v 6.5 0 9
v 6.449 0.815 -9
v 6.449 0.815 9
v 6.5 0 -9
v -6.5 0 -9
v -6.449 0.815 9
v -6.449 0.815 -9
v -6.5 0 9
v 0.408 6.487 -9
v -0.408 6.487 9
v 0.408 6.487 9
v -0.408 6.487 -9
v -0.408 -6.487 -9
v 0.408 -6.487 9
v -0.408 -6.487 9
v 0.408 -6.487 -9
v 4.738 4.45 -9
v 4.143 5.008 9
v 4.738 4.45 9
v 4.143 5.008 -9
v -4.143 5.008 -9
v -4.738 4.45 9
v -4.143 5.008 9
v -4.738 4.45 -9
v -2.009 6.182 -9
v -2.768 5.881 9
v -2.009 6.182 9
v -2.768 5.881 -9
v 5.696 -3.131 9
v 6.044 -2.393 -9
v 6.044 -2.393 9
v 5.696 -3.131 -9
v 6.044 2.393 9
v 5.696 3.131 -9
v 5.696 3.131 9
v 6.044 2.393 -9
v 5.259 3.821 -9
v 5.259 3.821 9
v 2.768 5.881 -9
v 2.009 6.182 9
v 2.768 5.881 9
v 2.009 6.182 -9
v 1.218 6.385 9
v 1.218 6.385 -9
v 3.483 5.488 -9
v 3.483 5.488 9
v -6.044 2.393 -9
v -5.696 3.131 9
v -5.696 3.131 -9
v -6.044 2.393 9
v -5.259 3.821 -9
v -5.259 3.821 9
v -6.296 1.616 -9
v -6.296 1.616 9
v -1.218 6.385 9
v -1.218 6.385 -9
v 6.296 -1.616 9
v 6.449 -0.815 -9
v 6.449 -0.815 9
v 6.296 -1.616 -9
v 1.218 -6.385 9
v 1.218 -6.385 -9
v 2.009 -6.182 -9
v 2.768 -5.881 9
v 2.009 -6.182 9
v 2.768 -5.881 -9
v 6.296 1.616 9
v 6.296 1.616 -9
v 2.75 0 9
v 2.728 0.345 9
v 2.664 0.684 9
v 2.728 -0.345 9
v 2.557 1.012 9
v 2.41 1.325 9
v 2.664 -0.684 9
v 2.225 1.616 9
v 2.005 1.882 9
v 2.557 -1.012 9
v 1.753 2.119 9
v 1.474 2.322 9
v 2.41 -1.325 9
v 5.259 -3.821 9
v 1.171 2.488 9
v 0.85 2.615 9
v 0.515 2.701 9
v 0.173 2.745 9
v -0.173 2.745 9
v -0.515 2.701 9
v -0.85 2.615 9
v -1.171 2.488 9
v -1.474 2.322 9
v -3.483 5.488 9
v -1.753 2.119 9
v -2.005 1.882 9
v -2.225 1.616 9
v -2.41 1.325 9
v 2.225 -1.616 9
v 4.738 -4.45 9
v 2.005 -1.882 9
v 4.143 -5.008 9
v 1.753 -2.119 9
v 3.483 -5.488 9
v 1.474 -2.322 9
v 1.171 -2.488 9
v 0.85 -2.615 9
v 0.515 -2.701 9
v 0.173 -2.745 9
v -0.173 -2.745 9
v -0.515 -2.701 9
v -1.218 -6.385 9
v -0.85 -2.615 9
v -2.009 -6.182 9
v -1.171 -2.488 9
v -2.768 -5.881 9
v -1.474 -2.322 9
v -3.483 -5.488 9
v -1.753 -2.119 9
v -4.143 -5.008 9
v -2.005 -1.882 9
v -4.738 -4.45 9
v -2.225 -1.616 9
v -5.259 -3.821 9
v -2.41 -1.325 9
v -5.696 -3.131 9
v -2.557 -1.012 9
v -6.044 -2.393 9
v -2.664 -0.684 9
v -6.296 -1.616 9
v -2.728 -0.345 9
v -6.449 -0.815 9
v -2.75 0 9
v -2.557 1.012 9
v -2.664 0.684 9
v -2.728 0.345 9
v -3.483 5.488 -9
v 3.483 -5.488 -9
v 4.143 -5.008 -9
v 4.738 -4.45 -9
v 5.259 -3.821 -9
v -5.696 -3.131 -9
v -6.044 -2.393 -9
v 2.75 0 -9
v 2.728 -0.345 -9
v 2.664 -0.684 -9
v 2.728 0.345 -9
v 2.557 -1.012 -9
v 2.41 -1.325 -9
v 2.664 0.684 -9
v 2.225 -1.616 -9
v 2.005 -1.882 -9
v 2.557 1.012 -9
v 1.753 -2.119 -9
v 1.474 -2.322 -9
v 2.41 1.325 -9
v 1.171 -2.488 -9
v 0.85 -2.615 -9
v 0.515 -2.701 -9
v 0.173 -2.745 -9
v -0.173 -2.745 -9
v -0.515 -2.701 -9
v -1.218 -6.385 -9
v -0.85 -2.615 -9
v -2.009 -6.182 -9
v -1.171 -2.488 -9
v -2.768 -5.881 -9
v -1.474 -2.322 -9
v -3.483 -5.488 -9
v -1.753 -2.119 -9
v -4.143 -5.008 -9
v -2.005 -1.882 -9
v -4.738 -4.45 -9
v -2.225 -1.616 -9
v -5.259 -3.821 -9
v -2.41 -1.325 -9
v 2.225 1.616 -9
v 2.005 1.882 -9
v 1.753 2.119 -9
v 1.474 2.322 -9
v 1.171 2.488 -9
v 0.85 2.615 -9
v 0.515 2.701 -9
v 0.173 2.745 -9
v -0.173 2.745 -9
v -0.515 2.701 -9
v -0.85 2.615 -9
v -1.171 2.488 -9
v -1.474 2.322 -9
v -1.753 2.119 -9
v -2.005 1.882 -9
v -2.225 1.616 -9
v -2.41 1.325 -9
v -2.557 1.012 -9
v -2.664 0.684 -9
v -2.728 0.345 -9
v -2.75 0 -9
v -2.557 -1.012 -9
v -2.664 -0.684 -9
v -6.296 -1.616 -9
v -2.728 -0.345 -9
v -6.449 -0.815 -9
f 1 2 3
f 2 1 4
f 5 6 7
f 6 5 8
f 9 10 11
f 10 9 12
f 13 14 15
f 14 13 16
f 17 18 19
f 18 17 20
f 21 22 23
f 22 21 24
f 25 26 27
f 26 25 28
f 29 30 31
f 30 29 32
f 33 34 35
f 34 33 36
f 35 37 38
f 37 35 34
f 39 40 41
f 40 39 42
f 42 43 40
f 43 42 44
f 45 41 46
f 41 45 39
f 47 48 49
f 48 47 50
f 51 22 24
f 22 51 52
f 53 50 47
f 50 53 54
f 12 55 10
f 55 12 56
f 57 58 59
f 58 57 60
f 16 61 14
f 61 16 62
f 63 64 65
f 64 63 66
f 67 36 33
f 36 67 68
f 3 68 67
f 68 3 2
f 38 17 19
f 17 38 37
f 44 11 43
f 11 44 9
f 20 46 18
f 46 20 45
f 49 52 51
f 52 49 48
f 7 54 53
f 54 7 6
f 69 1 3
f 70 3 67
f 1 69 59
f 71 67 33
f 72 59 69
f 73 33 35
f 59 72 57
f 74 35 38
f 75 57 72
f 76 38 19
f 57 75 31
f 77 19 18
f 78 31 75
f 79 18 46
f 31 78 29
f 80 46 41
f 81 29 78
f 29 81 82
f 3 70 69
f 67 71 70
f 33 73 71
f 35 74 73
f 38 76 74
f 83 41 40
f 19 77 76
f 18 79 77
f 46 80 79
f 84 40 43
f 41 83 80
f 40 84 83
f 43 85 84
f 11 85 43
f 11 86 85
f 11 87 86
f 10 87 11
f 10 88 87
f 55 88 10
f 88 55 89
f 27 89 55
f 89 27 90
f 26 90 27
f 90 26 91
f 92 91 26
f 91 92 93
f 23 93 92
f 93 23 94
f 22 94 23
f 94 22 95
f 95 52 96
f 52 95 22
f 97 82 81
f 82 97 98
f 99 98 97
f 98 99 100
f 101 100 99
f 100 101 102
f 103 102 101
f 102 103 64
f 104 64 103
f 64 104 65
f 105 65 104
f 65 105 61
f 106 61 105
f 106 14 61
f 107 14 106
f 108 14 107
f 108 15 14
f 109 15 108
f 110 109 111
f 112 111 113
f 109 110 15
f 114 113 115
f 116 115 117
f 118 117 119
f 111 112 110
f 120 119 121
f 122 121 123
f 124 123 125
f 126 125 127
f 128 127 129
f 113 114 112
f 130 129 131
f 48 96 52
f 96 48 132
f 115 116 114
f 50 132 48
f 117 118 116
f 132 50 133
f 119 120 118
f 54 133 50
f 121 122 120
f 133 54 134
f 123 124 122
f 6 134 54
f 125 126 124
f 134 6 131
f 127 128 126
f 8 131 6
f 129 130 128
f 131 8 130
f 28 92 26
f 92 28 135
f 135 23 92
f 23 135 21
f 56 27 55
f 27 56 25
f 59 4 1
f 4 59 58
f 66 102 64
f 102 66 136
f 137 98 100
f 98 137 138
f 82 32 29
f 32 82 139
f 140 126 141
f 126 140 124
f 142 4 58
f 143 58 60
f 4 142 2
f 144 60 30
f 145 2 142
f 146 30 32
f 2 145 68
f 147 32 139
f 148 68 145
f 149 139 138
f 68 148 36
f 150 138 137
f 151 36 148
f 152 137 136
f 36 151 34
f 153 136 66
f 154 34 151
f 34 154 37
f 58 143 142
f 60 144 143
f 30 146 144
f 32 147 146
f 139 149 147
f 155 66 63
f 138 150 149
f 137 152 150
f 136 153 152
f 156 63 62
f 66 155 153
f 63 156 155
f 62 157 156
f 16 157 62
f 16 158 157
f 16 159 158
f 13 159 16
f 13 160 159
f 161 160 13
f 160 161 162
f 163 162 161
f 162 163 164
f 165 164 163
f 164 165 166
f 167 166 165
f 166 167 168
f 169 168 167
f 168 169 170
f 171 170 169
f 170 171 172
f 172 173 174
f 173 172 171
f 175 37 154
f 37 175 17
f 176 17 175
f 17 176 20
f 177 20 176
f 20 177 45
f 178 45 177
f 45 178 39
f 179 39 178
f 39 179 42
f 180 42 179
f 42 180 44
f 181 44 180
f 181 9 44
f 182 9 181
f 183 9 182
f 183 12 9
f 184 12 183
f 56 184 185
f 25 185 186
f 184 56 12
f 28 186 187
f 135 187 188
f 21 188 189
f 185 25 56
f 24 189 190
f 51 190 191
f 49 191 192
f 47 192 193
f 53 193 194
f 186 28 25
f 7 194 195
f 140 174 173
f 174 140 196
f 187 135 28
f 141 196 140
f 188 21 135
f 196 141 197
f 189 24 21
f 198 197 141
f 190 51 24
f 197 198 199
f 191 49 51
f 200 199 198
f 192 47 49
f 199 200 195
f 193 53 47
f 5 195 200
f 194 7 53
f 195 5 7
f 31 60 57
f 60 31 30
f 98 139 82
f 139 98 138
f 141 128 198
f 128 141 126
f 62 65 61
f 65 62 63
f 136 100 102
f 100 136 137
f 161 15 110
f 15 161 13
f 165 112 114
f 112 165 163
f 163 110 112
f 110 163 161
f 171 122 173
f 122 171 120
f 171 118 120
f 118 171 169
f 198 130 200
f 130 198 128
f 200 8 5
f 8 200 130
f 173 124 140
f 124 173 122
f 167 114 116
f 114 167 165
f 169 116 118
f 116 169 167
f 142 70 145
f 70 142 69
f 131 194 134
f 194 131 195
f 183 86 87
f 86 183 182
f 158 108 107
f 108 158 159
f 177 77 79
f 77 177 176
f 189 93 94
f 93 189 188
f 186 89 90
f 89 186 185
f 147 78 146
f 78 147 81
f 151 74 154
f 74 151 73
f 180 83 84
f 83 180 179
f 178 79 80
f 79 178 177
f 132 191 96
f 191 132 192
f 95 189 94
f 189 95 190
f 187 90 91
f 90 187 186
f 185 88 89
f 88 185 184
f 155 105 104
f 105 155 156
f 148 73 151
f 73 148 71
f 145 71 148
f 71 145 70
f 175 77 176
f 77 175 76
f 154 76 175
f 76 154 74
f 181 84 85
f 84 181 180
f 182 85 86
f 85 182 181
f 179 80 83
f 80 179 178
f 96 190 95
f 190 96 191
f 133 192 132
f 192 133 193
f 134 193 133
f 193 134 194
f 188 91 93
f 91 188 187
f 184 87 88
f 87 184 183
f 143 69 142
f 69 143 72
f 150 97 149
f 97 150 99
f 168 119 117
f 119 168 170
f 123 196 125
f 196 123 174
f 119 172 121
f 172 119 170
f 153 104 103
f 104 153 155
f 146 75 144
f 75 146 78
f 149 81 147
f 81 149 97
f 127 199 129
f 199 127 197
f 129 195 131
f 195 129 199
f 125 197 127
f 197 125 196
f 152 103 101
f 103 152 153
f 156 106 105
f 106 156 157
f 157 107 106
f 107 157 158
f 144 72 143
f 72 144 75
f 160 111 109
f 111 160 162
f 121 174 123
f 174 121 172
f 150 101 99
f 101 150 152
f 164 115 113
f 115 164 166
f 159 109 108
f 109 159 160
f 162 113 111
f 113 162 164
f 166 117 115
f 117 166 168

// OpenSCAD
$fn = 50;


difference() {
	union() {
		translate(v = [0, 0, -9.0000000000]) {
			cylinder(h = 18, r = 6.5000000000);
		}
	}
	union() {
		translate(v = [0, 0, -100.0000000000]) {
			cylinder(h = 200, r = 2.7500000000);
		}
	}
}
